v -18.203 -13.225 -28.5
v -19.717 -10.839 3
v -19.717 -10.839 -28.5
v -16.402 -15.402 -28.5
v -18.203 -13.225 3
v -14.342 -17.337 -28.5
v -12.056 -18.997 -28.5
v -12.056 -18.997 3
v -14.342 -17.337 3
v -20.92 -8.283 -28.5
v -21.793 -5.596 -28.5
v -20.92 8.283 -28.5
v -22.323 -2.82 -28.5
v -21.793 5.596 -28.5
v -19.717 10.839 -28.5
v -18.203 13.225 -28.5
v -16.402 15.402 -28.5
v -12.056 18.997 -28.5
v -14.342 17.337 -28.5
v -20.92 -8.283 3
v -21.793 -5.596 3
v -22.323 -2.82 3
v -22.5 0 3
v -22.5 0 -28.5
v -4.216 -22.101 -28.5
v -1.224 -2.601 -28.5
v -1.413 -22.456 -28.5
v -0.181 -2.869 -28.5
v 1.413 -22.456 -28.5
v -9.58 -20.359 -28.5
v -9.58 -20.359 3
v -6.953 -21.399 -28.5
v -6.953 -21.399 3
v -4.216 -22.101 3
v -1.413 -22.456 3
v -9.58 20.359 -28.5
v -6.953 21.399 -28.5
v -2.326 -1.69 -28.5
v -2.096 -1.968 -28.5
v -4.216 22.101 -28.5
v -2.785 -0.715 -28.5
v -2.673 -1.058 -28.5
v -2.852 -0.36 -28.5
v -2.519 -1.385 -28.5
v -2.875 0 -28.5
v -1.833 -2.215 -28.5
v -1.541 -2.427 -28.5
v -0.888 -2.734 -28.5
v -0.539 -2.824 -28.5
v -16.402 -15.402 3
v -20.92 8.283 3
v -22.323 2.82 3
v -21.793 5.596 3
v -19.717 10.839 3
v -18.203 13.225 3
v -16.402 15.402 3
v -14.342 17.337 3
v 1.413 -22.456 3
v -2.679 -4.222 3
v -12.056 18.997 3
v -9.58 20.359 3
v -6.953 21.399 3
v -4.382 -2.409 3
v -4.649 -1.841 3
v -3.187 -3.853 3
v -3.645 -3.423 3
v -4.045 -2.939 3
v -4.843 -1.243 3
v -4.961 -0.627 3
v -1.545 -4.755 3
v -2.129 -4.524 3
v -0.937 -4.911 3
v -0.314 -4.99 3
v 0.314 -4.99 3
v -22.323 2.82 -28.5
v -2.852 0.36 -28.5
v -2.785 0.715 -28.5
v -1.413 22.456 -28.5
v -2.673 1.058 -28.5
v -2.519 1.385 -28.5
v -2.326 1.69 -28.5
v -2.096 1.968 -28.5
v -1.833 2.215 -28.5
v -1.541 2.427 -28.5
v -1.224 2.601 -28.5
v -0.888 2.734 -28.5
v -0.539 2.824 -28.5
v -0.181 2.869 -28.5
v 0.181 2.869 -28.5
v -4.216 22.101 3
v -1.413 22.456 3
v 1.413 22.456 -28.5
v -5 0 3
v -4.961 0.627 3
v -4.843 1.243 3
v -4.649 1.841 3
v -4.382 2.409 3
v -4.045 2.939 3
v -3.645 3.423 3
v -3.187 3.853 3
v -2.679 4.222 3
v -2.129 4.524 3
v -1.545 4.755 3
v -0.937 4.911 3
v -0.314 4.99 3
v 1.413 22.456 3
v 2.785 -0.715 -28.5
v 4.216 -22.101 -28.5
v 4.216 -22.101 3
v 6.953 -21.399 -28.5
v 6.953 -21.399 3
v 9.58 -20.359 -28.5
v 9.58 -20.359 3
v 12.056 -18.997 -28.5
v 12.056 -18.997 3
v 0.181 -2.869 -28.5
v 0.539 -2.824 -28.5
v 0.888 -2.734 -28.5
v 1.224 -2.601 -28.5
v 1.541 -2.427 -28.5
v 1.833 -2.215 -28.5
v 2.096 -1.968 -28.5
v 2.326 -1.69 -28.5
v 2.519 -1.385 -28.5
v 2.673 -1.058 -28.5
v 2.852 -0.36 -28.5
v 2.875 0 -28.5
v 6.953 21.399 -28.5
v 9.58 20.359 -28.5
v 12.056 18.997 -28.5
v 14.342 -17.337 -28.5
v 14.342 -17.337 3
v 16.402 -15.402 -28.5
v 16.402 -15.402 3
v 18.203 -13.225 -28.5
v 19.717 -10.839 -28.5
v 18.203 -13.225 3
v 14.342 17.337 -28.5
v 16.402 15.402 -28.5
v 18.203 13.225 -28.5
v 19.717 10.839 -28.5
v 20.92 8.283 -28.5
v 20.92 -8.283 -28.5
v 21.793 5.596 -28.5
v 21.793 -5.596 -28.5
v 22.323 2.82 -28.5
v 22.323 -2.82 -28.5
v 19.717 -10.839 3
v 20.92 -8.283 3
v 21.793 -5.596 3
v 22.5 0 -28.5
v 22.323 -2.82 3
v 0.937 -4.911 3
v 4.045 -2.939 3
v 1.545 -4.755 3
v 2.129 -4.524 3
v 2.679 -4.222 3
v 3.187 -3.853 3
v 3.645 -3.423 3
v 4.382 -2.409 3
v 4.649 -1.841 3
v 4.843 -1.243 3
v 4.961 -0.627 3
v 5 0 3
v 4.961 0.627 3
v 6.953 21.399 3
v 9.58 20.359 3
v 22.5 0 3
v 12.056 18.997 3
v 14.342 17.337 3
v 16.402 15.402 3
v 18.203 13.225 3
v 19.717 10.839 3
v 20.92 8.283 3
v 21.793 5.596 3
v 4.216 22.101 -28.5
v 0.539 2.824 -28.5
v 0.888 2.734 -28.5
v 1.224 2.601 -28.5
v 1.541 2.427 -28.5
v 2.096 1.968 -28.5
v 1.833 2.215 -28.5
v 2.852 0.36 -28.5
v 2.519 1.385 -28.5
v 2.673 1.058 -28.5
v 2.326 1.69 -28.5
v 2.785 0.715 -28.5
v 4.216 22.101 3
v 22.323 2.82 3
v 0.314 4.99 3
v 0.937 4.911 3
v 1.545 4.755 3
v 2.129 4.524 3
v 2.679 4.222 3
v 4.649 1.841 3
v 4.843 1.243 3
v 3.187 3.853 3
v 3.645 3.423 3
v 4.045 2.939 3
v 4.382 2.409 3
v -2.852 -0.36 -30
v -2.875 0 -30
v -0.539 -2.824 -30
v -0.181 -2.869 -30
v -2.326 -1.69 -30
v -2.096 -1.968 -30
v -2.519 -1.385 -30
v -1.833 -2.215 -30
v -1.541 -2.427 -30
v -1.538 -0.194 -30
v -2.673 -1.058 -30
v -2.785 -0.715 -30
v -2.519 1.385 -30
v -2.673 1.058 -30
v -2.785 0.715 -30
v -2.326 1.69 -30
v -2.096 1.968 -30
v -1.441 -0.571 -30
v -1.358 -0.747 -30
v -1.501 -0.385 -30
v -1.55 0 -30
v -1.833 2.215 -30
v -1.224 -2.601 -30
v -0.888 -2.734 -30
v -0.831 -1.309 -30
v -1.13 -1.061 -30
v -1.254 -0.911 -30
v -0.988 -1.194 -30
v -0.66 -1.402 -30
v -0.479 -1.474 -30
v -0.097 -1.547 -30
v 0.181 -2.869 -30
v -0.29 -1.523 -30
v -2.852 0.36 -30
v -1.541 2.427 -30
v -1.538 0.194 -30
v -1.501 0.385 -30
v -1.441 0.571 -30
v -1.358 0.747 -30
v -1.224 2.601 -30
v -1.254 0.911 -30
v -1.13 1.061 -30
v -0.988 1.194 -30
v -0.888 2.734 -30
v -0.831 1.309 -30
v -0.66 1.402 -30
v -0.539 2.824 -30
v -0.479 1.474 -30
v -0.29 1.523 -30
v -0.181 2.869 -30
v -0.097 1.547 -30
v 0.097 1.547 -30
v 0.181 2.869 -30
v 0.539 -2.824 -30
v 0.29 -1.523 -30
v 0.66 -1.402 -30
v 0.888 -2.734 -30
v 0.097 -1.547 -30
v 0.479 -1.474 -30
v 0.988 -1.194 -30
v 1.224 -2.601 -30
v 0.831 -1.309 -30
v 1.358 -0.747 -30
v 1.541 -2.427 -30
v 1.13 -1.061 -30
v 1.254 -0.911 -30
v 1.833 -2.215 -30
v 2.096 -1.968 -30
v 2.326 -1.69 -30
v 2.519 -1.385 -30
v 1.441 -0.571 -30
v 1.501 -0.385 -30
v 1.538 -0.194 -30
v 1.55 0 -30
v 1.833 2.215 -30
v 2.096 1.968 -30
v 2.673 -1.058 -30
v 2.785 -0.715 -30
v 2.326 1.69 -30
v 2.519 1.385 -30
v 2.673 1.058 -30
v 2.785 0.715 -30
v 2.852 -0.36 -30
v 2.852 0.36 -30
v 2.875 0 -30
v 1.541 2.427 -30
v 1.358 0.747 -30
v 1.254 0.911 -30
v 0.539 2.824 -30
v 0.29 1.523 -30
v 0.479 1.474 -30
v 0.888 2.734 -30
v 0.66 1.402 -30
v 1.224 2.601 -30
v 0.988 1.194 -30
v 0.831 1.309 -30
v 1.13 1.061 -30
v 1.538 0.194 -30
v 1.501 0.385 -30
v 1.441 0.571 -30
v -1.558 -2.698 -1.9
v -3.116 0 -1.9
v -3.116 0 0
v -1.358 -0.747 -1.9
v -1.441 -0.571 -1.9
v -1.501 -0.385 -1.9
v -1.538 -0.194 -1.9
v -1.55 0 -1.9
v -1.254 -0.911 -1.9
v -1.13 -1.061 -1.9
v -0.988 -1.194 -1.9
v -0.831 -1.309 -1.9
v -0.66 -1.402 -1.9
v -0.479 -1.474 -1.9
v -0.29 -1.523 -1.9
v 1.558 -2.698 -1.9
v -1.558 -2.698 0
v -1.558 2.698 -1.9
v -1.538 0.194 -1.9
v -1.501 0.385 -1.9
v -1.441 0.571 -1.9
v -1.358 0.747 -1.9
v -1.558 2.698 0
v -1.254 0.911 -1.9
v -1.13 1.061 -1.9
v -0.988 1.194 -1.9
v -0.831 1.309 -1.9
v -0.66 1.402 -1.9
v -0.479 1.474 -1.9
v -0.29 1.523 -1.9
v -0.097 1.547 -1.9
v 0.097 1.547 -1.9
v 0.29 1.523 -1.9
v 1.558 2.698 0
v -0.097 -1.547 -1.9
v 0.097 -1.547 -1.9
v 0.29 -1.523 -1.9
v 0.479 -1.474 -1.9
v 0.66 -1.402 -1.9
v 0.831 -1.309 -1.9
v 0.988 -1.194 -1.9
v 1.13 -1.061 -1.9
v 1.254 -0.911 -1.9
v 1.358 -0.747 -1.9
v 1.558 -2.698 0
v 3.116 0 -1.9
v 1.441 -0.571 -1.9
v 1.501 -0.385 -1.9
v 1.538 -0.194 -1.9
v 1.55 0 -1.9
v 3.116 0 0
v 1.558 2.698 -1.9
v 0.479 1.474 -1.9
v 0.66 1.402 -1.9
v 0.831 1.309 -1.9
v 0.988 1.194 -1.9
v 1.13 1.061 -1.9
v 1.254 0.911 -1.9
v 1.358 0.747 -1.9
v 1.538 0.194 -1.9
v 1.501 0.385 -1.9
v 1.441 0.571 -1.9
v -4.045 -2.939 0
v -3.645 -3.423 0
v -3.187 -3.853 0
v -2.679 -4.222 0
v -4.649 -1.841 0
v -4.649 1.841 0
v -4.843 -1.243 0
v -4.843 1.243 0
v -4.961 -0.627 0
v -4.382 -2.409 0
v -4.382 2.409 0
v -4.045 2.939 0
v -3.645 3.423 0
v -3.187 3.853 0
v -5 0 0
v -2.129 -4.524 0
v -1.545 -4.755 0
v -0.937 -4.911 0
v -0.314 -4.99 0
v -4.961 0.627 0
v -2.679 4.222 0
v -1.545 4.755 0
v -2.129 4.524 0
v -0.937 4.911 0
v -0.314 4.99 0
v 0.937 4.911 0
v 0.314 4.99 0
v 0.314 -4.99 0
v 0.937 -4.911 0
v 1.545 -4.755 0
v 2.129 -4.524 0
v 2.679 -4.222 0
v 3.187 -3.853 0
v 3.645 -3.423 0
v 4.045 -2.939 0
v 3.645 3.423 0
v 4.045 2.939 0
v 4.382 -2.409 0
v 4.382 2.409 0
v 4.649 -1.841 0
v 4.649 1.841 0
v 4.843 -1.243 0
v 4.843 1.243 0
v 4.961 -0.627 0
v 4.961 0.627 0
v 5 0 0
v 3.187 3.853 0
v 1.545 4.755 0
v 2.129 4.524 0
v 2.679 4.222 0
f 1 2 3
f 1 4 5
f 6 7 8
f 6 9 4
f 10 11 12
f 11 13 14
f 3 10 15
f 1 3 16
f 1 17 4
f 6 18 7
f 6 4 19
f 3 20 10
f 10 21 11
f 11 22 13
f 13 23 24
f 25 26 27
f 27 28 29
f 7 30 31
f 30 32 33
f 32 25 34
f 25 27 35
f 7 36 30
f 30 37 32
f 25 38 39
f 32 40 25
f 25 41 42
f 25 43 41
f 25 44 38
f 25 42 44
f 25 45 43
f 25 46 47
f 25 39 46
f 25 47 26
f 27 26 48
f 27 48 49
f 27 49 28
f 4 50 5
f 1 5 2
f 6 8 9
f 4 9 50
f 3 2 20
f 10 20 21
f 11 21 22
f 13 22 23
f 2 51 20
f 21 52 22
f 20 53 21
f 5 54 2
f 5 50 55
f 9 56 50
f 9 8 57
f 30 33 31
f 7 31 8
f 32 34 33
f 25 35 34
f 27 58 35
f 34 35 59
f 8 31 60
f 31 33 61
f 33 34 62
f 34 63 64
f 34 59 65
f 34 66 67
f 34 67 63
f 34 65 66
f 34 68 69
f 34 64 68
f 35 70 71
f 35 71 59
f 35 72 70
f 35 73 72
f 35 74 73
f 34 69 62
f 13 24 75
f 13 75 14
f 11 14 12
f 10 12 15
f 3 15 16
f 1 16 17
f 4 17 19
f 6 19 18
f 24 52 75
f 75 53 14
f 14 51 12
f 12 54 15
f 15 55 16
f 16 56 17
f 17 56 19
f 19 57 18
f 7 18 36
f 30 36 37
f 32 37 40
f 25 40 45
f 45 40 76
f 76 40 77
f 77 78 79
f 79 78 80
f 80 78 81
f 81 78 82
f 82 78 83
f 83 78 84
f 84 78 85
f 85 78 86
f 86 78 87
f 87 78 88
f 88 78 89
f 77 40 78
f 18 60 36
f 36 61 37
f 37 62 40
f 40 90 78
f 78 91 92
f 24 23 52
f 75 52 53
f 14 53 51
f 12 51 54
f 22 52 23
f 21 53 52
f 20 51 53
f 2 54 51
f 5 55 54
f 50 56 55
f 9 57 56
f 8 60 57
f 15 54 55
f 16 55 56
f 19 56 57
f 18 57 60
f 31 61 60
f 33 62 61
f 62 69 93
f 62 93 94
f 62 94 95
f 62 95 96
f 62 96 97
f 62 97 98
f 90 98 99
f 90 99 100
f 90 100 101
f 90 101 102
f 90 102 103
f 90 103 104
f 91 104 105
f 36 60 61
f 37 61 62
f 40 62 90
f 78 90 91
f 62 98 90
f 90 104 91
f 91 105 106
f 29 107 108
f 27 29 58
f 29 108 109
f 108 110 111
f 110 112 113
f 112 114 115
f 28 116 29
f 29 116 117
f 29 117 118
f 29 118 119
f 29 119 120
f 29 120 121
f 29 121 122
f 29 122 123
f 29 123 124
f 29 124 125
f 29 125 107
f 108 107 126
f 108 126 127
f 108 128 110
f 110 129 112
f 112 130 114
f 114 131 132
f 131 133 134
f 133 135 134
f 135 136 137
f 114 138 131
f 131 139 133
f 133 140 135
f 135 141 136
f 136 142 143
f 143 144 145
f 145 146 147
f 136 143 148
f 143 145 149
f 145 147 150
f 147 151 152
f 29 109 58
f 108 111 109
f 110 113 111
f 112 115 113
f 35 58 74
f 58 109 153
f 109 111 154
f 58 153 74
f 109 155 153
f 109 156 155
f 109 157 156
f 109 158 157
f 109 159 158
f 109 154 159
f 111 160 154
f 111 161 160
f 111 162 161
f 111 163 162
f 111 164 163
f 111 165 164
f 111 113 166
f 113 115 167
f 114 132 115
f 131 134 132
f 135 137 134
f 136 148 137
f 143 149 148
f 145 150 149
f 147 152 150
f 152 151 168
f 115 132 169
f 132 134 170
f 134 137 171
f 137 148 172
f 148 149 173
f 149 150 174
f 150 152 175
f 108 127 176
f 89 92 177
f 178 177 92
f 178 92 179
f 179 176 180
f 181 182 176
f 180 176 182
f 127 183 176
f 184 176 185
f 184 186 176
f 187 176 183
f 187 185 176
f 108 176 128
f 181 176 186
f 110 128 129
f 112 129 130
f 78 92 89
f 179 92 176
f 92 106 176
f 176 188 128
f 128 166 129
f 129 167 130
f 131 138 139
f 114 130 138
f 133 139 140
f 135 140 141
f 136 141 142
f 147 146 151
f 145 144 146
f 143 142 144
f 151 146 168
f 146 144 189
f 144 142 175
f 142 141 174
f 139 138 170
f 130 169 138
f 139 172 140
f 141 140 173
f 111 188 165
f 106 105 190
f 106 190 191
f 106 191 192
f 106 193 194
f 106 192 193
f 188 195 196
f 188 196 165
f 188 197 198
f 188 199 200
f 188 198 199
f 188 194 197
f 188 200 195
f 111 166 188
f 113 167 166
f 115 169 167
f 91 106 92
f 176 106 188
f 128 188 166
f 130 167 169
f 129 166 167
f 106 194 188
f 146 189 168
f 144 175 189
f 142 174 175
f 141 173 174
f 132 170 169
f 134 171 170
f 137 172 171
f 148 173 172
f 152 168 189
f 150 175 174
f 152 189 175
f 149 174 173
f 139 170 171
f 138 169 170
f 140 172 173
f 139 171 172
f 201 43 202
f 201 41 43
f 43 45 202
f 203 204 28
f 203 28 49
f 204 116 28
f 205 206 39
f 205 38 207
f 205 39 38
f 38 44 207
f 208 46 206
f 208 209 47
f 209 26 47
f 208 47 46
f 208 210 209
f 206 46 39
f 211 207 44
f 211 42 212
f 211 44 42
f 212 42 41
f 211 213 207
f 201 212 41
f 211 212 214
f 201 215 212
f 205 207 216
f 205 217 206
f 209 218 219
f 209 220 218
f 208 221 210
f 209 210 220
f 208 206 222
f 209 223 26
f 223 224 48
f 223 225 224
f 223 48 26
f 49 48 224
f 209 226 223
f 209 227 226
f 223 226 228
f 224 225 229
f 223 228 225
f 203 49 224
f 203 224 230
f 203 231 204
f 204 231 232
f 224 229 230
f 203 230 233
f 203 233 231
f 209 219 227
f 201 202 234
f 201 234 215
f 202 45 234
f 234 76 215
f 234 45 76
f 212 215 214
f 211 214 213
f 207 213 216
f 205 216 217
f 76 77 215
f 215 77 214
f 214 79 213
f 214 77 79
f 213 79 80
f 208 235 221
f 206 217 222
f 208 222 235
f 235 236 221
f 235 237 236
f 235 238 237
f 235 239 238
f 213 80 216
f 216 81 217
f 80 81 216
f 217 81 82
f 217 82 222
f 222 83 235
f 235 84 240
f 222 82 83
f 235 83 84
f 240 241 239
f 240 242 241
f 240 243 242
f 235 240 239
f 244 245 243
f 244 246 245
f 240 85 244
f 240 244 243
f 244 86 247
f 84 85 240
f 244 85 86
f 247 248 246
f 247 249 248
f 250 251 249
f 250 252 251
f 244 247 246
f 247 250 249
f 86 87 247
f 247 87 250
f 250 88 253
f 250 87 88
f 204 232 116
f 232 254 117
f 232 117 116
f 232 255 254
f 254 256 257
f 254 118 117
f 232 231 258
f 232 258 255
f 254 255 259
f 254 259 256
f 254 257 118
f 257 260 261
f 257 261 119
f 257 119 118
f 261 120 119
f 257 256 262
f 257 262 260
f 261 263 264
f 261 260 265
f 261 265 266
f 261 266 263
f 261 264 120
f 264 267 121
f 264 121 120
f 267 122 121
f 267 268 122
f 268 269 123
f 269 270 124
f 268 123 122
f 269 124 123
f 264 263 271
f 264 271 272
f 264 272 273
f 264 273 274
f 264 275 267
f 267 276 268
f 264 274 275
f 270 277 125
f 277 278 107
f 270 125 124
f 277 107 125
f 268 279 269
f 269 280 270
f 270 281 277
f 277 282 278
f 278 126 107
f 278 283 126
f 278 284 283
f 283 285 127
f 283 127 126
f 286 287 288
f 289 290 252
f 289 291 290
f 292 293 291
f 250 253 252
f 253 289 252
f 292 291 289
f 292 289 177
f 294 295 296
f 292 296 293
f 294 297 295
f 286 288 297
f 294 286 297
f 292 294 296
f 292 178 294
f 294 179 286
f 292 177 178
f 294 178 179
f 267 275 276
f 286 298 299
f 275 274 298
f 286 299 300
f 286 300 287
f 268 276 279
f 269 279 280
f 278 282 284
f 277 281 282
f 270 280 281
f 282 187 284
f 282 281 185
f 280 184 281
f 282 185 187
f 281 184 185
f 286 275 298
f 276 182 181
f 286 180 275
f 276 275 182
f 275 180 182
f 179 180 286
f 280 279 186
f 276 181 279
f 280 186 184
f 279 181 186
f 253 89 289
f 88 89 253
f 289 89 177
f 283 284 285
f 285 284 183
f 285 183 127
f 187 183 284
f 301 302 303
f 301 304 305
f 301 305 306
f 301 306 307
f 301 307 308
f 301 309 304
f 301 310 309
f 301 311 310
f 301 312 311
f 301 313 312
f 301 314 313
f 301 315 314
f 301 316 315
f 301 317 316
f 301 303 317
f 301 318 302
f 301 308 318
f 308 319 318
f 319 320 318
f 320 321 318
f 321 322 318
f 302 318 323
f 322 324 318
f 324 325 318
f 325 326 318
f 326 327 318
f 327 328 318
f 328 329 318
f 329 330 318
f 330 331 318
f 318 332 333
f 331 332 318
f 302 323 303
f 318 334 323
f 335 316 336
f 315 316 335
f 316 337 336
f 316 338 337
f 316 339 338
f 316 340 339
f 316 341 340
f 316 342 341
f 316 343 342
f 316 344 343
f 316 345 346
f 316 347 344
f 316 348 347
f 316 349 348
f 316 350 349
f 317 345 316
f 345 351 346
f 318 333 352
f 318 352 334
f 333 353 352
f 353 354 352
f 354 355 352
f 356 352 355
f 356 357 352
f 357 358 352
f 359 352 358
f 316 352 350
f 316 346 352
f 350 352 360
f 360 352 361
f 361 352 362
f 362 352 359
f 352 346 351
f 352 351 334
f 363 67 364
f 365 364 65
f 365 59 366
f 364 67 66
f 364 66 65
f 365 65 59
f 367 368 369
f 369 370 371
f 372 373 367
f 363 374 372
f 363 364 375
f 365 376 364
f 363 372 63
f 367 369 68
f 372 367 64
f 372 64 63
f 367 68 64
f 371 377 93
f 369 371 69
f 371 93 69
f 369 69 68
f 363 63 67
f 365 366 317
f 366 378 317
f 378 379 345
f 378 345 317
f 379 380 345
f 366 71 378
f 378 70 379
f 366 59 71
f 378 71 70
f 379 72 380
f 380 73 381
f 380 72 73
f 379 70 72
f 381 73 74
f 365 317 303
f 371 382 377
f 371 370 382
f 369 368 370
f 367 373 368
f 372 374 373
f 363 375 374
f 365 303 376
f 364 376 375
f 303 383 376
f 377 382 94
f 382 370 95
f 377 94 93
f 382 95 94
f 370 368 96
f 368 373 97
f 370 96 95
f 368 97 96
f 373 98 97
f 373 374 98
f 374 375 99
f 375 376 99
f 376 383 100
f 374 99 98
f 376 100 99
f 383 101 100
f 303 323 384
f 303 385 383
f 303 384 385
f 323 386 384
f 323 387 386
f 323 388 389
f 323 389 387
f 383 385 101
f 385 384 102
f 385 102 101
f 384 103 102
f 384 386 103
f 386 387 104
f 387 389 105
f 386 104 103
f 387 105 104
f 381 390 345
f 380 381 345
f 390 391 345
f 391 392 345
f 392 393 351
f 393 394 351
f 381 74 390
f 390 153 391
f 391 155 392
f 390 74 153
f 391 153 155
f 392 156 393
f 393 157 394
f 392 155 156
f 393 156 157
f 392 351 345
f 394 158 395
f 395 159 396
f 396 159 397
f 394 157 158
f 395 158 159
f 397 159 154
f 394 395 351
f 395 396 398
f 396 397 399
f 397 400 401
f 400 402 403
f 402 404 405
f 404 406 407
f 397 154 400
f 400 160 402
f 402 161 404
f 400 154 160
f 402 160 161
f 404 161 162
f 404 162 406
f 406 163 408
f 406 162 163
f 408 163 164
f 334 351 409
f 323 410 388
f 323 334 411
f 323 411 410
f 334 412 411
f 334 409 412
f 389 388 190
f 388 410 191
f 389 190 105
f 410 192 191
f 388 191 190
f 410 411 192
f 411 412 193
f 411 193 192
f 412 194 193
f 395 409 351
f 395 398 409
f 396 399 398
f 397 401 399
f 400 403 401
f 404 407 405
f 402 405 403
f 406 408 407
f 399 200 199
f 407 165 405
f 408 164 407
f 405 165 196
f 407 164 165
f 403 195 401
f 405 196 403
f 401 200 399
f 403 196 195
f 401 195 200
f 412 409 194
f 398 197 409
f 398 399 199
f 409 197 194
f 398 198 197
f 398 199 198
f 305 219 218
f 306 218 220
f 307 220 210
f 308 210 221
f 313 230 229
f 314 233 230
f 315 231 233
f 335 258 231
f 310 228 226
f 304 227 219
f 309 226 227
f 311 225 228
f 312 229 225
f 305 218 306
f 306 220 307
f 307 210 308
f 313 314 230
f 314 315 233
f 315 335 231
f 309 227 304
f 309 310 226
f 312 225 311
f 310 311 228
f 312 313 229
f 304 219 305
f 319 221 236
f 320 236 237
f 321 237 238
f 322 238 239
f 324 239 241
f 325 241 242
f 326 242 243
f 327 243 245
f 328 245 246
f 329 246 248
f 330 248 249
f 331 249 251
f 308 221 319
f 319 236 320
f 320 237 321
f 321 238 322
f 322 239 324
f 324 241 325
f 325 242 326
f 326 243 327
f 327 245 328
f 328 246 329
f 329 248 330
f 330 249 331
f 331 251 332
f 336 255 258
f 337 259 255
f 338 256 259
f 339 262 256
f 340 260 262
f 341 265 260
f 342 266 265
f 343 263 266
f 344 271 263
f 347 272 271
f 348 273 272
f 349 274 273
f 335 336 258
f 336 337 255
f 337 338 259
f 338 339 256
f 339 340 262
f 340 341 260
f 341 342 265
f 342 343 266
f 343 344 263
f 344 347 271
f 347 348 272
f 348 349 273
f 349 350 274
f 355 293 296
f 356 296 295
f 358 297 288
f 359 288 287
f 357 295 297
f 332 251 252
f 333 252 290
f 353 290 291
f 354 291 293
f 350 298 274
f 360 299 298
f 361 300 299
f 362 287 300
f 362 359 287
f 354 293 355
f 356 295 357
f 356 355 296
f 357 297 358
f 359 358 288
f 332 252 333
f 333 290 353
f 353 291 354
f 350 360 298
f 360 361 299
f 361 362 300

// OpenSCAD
$fn = 50;

difference() {
	union() {
		translate(v = [0, 0, -28.5]) {
			cylinder(h = 31.5, r = 22.5);
		}
		#translate(v = [0, 0, -30.0]) {
			cylinder(h = 30, r = 2.875);
		}
	}
	union() {
		translate(v = [0, 0, 0]) {
			rotate(a = [0, 0, 0]) {
				difference() {
					union() {
						translate(v = [0, 0, -1.9]) {
							linear_extrude(height = 1.9) {
								polygon(points = [[3.1158, 0.0], [1.5579000000000005, 2.698361953111554], [-1.5578999999999994, 2.6983619531115544], [-3.1158, 3.815754496783323e-16], [-1.5579000000000014, -2.6983619531115535], [1.557899999999998, -2.6983619531115552]]);
							}
						}
					}
					union();
				}
			}
		}
		#cylinder(h = 3, r = 5.0);
		#translate(v = [0, 0, -100.0]) {
			cylinder(h = 200, r = 1.55);
		}
	}
}
